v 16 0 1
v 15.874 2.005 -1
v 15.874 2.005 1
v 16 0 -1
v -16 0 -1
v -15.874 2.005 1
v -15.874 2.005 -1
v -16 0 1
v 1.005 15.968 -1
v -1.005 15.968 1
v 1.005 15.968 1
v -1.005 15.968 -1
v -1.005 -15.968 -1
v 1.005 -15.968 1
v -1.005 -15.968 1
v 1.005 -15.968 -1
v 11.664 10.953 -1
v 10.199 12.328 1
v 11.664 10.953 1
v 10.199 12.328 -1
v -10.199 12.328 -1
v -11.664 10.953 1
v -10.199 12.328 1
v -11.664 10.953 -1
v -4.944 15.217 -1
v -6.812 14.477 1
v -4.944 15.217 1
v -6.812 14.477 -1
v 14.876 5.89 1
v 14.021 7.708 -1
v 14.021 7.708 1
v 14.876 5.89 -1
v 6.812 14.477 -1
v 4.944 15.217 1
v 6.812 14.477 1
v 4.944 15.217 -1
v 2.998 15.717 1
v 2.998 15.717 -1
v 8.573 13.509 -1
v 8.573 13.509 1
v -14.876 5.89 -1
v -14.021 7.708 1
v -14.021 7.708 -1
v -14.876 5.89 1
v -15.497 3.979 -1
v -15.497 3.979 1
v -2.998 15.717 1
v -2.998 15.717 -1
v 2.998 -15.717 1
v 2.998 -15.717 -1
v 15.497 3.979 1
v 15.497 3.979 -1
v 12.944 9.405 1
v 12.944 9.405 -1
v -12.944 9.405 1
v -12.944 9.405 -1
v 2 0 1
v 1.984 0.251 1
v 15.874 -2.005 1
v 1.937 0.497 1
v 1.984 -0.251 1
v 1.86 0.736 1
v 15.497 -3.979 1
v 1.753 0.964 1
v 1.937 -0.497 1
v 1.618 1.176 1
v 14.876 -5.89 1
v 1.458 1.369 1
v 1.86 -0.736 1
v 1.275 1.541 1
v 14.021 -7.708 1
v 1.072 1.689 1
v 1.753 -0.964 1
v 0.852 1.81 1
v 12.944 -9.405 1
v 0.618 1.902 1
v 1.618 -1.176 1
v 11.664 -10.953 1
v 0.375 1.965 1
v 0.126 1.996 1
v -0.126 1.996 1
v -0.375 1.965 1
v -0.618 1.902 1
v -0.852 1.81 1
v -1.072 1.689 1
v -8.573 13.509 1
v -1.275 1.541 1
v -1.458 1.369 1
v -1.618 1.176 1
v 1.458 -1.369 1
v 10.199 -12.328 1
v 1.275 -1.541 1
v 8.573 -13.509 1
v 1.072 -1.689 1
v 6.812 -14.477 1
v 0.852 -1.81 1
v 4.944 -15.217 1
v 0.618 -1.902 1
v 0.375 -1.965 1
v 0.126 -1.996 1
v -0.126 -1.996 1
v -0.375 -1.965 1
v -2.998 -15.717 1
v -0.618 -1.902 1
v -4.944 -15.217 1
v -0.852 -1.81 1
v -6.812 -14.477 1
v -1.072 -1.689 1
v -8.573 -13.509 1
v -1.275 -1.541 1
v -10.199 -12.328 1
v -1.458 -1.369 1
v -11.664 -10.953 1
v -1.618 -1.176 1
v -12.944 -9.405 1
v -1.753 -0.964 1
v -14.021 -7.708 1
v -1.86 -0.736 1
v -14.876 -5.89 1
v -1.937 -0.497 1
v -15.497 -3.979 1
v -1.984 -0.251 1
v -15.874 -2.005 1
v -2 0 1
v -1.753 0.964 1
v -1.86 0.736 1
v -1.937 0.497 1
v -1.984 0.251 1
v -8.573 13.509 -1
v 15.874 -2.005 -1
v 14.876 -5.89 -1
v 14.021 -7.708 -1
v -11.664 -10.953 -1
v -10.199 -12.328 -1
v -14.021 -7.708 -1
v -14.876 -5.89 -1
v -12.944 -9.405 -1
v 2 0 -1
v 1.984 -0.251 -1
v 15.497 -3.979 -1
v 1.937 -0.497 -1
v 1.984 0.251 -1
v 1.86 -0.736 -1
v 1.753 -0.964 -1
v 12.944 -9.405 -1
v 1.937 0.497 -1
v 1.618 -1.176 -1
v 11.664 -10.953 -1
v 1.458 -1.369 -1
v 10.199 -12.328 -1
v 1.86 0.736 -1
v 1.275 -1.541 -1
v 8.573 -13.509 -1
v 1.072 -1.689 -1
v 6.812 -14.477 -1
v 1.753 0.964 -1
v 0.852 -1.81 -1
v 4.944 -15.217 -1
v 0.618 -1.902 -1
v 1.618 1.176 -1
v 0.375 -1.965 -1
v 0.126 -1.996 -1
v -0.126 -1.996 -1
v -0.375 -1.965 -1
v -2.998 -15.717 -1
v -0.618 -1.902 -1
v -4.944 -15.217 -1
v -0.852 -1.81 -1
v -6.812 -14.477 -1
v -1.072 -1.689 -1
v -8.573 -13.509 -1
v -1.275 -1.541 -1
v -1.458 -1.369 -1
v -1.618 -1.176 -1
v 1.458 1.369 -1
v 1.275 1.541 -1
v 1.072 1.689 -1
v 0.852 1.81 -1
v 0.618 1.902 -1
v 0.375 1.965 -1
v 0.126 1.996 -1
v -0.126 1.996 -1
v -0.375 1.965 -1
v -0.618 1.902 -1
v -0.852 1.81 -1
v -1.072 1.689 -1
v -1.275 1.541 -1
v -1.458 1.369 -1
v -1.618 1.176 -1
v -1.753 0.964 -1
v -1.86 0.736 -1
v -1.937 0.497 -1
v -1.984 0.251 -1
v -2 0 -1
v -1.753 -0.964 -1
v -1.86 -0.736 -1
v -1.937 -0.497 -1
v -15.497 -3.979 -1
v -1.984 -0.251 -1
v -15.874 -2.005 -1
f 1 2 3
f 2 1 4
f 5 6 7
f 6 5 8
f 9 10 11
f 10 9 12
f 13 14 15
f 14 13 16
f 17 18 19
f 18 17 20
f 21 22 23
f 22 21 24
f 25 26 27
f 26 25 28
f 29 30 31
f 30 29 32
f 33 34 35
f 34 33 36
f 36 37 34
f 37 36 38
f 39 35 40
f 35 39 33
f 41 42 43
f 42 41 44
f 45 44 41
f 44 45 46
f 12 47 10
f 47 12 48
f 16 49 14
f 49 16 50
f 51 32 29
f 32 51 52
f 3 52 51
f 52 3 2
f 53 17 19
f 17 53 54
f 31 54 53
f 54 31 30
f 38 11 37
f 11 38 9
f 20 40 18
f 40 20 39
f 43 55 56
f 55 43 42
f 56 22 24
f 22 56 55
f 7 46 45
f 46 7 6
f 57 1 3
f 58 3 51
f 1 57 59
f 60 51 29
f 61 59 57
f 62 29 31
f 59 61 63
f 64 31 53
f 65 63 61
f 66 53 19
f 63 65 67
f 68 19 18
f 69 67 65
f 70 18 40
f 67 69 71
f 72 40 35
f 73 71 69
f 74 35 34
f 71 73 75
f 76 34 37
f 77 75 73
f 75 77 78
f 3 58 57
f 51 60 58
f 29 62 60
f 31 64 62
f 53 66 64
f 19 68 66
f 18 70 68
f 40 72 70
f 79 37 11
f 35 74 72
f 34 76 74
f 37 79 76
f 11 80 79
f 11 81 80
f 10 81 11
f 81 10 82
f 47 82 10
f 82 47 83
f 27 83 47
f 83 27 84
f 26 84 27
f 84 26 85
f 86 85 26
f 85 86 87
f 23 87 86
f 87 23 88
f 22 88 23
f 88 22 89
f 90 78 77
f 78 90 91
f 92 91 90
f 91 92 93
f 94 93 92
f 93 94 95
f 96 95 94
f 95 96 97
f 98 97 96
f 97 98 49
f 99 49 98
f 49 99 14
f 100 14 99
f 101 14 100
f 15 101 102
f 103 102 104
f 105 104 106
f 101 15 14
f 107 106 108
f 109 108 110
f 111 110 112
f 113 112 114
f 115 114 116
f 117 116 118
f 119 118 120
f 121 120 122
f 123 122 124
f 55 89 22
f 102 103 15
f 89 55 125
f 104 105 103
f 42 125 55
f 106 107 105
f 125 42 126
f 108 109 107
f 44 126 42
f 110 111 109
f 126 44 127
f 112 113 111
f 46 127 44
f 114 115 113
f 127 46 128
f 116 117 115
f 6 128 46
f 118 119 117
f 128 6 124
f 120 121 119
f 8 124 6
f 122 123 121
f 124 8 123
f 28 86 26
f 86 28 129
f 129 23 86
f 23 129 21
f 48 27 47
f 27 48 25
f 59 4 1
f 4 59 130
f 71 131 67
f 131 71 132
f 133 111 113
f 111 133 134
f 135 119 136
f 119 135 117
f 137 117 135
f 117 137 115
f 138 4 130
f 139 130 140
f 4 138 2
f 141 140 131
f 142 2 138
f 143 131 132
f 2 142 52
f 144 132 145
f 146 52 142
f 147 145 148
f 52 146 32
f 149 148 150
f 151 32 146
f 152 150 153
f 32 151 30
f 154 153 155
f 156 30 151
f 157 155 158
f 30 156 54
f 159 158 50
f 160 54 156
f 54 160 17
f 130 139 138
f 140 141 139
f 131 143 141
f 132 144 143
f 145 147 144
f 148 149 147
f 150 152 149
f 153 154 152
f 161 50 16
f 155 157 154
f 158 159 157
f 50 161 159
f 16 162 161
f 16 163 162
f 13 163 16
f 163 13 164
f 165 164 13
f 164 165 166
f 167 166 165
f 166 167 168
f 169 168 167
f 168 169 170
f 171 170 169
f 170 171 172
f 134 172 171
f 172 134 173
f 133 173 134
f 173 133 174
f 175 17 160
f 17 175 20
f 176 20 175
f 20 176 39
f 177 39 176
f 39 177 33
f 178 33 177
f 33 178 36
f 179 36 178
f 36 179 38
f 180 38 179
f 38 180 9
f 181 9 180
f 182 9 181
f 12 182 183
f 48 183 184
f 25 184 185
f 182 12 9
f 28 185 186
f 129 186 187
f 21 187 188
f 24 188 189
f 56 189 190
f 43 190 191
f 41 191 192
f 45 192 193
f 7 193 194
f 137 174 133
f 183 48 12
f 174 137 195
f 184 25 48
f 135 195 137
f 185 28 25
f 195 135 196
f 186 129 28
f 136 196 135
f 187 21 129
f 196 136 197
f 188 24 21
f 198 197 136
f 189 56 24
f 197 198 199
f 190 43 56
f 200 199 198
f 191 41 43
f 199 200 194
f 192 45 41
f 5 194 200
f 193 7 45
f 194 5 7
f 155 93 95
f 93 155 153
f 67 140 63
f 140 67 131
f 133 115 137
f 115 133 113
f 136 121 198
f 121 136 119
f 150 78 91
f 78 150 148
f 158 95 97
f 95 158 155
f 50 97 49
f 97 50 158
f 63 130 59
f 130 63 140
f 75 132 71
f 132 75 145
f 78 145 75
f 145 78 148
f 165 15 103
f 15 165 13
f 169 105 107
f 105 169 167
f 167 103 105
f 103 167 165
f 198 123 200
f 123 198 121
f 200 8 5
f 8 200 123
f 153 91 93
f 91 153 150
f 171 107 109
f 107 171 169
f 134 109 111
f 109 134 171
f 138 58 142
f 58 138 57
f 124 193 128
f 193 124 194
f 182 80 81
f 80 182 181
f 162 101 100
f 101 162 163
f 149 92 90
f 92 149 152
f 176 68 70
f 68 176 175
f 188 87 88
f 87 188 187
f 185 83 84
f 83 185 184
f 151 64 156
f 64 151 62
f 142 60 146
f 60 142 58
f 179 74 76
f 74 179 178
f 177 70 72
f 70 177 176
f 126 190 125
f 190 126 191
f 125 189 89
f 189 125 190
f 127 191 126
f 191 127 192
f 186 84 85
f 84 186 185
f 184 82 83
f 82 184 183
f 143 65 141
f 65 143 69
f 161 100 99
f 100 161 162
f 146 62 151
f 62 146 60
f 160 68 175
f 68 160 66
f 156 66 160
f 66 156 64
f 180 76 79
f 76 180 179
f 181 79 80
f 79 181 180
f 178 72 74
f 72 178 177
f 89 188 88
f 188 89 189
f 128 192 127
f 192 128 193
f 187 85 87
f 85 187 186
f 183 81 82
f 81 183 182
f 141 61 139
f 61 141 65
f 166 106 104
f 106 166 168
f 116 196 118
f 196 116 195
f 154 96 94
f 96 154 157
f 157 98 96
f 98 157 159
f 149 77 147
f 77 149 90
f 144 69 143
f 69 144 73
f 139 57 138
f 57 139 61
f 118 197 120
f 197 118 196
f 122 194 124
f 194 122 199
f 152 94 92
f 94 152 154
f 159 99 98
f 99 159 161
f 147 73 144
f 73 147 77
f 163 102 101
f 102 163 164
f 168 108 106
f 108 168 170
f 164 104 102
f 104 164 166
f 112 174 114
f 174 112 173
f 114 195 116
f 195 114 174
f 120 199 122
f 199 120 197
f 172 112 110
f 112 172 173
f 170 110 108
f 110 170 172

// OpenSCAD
$fn = 50;


difference() {
	union() {
		translate(v = [0, 0, -1.0000000000]) {
			cylinder(h = 2, r = 16.0000000000);
		}
	}
	union() {
		translate(v = [0, 0, -100.0000000000]) {
			cylinder(h = 200, r = 2);
		}
	}
}
